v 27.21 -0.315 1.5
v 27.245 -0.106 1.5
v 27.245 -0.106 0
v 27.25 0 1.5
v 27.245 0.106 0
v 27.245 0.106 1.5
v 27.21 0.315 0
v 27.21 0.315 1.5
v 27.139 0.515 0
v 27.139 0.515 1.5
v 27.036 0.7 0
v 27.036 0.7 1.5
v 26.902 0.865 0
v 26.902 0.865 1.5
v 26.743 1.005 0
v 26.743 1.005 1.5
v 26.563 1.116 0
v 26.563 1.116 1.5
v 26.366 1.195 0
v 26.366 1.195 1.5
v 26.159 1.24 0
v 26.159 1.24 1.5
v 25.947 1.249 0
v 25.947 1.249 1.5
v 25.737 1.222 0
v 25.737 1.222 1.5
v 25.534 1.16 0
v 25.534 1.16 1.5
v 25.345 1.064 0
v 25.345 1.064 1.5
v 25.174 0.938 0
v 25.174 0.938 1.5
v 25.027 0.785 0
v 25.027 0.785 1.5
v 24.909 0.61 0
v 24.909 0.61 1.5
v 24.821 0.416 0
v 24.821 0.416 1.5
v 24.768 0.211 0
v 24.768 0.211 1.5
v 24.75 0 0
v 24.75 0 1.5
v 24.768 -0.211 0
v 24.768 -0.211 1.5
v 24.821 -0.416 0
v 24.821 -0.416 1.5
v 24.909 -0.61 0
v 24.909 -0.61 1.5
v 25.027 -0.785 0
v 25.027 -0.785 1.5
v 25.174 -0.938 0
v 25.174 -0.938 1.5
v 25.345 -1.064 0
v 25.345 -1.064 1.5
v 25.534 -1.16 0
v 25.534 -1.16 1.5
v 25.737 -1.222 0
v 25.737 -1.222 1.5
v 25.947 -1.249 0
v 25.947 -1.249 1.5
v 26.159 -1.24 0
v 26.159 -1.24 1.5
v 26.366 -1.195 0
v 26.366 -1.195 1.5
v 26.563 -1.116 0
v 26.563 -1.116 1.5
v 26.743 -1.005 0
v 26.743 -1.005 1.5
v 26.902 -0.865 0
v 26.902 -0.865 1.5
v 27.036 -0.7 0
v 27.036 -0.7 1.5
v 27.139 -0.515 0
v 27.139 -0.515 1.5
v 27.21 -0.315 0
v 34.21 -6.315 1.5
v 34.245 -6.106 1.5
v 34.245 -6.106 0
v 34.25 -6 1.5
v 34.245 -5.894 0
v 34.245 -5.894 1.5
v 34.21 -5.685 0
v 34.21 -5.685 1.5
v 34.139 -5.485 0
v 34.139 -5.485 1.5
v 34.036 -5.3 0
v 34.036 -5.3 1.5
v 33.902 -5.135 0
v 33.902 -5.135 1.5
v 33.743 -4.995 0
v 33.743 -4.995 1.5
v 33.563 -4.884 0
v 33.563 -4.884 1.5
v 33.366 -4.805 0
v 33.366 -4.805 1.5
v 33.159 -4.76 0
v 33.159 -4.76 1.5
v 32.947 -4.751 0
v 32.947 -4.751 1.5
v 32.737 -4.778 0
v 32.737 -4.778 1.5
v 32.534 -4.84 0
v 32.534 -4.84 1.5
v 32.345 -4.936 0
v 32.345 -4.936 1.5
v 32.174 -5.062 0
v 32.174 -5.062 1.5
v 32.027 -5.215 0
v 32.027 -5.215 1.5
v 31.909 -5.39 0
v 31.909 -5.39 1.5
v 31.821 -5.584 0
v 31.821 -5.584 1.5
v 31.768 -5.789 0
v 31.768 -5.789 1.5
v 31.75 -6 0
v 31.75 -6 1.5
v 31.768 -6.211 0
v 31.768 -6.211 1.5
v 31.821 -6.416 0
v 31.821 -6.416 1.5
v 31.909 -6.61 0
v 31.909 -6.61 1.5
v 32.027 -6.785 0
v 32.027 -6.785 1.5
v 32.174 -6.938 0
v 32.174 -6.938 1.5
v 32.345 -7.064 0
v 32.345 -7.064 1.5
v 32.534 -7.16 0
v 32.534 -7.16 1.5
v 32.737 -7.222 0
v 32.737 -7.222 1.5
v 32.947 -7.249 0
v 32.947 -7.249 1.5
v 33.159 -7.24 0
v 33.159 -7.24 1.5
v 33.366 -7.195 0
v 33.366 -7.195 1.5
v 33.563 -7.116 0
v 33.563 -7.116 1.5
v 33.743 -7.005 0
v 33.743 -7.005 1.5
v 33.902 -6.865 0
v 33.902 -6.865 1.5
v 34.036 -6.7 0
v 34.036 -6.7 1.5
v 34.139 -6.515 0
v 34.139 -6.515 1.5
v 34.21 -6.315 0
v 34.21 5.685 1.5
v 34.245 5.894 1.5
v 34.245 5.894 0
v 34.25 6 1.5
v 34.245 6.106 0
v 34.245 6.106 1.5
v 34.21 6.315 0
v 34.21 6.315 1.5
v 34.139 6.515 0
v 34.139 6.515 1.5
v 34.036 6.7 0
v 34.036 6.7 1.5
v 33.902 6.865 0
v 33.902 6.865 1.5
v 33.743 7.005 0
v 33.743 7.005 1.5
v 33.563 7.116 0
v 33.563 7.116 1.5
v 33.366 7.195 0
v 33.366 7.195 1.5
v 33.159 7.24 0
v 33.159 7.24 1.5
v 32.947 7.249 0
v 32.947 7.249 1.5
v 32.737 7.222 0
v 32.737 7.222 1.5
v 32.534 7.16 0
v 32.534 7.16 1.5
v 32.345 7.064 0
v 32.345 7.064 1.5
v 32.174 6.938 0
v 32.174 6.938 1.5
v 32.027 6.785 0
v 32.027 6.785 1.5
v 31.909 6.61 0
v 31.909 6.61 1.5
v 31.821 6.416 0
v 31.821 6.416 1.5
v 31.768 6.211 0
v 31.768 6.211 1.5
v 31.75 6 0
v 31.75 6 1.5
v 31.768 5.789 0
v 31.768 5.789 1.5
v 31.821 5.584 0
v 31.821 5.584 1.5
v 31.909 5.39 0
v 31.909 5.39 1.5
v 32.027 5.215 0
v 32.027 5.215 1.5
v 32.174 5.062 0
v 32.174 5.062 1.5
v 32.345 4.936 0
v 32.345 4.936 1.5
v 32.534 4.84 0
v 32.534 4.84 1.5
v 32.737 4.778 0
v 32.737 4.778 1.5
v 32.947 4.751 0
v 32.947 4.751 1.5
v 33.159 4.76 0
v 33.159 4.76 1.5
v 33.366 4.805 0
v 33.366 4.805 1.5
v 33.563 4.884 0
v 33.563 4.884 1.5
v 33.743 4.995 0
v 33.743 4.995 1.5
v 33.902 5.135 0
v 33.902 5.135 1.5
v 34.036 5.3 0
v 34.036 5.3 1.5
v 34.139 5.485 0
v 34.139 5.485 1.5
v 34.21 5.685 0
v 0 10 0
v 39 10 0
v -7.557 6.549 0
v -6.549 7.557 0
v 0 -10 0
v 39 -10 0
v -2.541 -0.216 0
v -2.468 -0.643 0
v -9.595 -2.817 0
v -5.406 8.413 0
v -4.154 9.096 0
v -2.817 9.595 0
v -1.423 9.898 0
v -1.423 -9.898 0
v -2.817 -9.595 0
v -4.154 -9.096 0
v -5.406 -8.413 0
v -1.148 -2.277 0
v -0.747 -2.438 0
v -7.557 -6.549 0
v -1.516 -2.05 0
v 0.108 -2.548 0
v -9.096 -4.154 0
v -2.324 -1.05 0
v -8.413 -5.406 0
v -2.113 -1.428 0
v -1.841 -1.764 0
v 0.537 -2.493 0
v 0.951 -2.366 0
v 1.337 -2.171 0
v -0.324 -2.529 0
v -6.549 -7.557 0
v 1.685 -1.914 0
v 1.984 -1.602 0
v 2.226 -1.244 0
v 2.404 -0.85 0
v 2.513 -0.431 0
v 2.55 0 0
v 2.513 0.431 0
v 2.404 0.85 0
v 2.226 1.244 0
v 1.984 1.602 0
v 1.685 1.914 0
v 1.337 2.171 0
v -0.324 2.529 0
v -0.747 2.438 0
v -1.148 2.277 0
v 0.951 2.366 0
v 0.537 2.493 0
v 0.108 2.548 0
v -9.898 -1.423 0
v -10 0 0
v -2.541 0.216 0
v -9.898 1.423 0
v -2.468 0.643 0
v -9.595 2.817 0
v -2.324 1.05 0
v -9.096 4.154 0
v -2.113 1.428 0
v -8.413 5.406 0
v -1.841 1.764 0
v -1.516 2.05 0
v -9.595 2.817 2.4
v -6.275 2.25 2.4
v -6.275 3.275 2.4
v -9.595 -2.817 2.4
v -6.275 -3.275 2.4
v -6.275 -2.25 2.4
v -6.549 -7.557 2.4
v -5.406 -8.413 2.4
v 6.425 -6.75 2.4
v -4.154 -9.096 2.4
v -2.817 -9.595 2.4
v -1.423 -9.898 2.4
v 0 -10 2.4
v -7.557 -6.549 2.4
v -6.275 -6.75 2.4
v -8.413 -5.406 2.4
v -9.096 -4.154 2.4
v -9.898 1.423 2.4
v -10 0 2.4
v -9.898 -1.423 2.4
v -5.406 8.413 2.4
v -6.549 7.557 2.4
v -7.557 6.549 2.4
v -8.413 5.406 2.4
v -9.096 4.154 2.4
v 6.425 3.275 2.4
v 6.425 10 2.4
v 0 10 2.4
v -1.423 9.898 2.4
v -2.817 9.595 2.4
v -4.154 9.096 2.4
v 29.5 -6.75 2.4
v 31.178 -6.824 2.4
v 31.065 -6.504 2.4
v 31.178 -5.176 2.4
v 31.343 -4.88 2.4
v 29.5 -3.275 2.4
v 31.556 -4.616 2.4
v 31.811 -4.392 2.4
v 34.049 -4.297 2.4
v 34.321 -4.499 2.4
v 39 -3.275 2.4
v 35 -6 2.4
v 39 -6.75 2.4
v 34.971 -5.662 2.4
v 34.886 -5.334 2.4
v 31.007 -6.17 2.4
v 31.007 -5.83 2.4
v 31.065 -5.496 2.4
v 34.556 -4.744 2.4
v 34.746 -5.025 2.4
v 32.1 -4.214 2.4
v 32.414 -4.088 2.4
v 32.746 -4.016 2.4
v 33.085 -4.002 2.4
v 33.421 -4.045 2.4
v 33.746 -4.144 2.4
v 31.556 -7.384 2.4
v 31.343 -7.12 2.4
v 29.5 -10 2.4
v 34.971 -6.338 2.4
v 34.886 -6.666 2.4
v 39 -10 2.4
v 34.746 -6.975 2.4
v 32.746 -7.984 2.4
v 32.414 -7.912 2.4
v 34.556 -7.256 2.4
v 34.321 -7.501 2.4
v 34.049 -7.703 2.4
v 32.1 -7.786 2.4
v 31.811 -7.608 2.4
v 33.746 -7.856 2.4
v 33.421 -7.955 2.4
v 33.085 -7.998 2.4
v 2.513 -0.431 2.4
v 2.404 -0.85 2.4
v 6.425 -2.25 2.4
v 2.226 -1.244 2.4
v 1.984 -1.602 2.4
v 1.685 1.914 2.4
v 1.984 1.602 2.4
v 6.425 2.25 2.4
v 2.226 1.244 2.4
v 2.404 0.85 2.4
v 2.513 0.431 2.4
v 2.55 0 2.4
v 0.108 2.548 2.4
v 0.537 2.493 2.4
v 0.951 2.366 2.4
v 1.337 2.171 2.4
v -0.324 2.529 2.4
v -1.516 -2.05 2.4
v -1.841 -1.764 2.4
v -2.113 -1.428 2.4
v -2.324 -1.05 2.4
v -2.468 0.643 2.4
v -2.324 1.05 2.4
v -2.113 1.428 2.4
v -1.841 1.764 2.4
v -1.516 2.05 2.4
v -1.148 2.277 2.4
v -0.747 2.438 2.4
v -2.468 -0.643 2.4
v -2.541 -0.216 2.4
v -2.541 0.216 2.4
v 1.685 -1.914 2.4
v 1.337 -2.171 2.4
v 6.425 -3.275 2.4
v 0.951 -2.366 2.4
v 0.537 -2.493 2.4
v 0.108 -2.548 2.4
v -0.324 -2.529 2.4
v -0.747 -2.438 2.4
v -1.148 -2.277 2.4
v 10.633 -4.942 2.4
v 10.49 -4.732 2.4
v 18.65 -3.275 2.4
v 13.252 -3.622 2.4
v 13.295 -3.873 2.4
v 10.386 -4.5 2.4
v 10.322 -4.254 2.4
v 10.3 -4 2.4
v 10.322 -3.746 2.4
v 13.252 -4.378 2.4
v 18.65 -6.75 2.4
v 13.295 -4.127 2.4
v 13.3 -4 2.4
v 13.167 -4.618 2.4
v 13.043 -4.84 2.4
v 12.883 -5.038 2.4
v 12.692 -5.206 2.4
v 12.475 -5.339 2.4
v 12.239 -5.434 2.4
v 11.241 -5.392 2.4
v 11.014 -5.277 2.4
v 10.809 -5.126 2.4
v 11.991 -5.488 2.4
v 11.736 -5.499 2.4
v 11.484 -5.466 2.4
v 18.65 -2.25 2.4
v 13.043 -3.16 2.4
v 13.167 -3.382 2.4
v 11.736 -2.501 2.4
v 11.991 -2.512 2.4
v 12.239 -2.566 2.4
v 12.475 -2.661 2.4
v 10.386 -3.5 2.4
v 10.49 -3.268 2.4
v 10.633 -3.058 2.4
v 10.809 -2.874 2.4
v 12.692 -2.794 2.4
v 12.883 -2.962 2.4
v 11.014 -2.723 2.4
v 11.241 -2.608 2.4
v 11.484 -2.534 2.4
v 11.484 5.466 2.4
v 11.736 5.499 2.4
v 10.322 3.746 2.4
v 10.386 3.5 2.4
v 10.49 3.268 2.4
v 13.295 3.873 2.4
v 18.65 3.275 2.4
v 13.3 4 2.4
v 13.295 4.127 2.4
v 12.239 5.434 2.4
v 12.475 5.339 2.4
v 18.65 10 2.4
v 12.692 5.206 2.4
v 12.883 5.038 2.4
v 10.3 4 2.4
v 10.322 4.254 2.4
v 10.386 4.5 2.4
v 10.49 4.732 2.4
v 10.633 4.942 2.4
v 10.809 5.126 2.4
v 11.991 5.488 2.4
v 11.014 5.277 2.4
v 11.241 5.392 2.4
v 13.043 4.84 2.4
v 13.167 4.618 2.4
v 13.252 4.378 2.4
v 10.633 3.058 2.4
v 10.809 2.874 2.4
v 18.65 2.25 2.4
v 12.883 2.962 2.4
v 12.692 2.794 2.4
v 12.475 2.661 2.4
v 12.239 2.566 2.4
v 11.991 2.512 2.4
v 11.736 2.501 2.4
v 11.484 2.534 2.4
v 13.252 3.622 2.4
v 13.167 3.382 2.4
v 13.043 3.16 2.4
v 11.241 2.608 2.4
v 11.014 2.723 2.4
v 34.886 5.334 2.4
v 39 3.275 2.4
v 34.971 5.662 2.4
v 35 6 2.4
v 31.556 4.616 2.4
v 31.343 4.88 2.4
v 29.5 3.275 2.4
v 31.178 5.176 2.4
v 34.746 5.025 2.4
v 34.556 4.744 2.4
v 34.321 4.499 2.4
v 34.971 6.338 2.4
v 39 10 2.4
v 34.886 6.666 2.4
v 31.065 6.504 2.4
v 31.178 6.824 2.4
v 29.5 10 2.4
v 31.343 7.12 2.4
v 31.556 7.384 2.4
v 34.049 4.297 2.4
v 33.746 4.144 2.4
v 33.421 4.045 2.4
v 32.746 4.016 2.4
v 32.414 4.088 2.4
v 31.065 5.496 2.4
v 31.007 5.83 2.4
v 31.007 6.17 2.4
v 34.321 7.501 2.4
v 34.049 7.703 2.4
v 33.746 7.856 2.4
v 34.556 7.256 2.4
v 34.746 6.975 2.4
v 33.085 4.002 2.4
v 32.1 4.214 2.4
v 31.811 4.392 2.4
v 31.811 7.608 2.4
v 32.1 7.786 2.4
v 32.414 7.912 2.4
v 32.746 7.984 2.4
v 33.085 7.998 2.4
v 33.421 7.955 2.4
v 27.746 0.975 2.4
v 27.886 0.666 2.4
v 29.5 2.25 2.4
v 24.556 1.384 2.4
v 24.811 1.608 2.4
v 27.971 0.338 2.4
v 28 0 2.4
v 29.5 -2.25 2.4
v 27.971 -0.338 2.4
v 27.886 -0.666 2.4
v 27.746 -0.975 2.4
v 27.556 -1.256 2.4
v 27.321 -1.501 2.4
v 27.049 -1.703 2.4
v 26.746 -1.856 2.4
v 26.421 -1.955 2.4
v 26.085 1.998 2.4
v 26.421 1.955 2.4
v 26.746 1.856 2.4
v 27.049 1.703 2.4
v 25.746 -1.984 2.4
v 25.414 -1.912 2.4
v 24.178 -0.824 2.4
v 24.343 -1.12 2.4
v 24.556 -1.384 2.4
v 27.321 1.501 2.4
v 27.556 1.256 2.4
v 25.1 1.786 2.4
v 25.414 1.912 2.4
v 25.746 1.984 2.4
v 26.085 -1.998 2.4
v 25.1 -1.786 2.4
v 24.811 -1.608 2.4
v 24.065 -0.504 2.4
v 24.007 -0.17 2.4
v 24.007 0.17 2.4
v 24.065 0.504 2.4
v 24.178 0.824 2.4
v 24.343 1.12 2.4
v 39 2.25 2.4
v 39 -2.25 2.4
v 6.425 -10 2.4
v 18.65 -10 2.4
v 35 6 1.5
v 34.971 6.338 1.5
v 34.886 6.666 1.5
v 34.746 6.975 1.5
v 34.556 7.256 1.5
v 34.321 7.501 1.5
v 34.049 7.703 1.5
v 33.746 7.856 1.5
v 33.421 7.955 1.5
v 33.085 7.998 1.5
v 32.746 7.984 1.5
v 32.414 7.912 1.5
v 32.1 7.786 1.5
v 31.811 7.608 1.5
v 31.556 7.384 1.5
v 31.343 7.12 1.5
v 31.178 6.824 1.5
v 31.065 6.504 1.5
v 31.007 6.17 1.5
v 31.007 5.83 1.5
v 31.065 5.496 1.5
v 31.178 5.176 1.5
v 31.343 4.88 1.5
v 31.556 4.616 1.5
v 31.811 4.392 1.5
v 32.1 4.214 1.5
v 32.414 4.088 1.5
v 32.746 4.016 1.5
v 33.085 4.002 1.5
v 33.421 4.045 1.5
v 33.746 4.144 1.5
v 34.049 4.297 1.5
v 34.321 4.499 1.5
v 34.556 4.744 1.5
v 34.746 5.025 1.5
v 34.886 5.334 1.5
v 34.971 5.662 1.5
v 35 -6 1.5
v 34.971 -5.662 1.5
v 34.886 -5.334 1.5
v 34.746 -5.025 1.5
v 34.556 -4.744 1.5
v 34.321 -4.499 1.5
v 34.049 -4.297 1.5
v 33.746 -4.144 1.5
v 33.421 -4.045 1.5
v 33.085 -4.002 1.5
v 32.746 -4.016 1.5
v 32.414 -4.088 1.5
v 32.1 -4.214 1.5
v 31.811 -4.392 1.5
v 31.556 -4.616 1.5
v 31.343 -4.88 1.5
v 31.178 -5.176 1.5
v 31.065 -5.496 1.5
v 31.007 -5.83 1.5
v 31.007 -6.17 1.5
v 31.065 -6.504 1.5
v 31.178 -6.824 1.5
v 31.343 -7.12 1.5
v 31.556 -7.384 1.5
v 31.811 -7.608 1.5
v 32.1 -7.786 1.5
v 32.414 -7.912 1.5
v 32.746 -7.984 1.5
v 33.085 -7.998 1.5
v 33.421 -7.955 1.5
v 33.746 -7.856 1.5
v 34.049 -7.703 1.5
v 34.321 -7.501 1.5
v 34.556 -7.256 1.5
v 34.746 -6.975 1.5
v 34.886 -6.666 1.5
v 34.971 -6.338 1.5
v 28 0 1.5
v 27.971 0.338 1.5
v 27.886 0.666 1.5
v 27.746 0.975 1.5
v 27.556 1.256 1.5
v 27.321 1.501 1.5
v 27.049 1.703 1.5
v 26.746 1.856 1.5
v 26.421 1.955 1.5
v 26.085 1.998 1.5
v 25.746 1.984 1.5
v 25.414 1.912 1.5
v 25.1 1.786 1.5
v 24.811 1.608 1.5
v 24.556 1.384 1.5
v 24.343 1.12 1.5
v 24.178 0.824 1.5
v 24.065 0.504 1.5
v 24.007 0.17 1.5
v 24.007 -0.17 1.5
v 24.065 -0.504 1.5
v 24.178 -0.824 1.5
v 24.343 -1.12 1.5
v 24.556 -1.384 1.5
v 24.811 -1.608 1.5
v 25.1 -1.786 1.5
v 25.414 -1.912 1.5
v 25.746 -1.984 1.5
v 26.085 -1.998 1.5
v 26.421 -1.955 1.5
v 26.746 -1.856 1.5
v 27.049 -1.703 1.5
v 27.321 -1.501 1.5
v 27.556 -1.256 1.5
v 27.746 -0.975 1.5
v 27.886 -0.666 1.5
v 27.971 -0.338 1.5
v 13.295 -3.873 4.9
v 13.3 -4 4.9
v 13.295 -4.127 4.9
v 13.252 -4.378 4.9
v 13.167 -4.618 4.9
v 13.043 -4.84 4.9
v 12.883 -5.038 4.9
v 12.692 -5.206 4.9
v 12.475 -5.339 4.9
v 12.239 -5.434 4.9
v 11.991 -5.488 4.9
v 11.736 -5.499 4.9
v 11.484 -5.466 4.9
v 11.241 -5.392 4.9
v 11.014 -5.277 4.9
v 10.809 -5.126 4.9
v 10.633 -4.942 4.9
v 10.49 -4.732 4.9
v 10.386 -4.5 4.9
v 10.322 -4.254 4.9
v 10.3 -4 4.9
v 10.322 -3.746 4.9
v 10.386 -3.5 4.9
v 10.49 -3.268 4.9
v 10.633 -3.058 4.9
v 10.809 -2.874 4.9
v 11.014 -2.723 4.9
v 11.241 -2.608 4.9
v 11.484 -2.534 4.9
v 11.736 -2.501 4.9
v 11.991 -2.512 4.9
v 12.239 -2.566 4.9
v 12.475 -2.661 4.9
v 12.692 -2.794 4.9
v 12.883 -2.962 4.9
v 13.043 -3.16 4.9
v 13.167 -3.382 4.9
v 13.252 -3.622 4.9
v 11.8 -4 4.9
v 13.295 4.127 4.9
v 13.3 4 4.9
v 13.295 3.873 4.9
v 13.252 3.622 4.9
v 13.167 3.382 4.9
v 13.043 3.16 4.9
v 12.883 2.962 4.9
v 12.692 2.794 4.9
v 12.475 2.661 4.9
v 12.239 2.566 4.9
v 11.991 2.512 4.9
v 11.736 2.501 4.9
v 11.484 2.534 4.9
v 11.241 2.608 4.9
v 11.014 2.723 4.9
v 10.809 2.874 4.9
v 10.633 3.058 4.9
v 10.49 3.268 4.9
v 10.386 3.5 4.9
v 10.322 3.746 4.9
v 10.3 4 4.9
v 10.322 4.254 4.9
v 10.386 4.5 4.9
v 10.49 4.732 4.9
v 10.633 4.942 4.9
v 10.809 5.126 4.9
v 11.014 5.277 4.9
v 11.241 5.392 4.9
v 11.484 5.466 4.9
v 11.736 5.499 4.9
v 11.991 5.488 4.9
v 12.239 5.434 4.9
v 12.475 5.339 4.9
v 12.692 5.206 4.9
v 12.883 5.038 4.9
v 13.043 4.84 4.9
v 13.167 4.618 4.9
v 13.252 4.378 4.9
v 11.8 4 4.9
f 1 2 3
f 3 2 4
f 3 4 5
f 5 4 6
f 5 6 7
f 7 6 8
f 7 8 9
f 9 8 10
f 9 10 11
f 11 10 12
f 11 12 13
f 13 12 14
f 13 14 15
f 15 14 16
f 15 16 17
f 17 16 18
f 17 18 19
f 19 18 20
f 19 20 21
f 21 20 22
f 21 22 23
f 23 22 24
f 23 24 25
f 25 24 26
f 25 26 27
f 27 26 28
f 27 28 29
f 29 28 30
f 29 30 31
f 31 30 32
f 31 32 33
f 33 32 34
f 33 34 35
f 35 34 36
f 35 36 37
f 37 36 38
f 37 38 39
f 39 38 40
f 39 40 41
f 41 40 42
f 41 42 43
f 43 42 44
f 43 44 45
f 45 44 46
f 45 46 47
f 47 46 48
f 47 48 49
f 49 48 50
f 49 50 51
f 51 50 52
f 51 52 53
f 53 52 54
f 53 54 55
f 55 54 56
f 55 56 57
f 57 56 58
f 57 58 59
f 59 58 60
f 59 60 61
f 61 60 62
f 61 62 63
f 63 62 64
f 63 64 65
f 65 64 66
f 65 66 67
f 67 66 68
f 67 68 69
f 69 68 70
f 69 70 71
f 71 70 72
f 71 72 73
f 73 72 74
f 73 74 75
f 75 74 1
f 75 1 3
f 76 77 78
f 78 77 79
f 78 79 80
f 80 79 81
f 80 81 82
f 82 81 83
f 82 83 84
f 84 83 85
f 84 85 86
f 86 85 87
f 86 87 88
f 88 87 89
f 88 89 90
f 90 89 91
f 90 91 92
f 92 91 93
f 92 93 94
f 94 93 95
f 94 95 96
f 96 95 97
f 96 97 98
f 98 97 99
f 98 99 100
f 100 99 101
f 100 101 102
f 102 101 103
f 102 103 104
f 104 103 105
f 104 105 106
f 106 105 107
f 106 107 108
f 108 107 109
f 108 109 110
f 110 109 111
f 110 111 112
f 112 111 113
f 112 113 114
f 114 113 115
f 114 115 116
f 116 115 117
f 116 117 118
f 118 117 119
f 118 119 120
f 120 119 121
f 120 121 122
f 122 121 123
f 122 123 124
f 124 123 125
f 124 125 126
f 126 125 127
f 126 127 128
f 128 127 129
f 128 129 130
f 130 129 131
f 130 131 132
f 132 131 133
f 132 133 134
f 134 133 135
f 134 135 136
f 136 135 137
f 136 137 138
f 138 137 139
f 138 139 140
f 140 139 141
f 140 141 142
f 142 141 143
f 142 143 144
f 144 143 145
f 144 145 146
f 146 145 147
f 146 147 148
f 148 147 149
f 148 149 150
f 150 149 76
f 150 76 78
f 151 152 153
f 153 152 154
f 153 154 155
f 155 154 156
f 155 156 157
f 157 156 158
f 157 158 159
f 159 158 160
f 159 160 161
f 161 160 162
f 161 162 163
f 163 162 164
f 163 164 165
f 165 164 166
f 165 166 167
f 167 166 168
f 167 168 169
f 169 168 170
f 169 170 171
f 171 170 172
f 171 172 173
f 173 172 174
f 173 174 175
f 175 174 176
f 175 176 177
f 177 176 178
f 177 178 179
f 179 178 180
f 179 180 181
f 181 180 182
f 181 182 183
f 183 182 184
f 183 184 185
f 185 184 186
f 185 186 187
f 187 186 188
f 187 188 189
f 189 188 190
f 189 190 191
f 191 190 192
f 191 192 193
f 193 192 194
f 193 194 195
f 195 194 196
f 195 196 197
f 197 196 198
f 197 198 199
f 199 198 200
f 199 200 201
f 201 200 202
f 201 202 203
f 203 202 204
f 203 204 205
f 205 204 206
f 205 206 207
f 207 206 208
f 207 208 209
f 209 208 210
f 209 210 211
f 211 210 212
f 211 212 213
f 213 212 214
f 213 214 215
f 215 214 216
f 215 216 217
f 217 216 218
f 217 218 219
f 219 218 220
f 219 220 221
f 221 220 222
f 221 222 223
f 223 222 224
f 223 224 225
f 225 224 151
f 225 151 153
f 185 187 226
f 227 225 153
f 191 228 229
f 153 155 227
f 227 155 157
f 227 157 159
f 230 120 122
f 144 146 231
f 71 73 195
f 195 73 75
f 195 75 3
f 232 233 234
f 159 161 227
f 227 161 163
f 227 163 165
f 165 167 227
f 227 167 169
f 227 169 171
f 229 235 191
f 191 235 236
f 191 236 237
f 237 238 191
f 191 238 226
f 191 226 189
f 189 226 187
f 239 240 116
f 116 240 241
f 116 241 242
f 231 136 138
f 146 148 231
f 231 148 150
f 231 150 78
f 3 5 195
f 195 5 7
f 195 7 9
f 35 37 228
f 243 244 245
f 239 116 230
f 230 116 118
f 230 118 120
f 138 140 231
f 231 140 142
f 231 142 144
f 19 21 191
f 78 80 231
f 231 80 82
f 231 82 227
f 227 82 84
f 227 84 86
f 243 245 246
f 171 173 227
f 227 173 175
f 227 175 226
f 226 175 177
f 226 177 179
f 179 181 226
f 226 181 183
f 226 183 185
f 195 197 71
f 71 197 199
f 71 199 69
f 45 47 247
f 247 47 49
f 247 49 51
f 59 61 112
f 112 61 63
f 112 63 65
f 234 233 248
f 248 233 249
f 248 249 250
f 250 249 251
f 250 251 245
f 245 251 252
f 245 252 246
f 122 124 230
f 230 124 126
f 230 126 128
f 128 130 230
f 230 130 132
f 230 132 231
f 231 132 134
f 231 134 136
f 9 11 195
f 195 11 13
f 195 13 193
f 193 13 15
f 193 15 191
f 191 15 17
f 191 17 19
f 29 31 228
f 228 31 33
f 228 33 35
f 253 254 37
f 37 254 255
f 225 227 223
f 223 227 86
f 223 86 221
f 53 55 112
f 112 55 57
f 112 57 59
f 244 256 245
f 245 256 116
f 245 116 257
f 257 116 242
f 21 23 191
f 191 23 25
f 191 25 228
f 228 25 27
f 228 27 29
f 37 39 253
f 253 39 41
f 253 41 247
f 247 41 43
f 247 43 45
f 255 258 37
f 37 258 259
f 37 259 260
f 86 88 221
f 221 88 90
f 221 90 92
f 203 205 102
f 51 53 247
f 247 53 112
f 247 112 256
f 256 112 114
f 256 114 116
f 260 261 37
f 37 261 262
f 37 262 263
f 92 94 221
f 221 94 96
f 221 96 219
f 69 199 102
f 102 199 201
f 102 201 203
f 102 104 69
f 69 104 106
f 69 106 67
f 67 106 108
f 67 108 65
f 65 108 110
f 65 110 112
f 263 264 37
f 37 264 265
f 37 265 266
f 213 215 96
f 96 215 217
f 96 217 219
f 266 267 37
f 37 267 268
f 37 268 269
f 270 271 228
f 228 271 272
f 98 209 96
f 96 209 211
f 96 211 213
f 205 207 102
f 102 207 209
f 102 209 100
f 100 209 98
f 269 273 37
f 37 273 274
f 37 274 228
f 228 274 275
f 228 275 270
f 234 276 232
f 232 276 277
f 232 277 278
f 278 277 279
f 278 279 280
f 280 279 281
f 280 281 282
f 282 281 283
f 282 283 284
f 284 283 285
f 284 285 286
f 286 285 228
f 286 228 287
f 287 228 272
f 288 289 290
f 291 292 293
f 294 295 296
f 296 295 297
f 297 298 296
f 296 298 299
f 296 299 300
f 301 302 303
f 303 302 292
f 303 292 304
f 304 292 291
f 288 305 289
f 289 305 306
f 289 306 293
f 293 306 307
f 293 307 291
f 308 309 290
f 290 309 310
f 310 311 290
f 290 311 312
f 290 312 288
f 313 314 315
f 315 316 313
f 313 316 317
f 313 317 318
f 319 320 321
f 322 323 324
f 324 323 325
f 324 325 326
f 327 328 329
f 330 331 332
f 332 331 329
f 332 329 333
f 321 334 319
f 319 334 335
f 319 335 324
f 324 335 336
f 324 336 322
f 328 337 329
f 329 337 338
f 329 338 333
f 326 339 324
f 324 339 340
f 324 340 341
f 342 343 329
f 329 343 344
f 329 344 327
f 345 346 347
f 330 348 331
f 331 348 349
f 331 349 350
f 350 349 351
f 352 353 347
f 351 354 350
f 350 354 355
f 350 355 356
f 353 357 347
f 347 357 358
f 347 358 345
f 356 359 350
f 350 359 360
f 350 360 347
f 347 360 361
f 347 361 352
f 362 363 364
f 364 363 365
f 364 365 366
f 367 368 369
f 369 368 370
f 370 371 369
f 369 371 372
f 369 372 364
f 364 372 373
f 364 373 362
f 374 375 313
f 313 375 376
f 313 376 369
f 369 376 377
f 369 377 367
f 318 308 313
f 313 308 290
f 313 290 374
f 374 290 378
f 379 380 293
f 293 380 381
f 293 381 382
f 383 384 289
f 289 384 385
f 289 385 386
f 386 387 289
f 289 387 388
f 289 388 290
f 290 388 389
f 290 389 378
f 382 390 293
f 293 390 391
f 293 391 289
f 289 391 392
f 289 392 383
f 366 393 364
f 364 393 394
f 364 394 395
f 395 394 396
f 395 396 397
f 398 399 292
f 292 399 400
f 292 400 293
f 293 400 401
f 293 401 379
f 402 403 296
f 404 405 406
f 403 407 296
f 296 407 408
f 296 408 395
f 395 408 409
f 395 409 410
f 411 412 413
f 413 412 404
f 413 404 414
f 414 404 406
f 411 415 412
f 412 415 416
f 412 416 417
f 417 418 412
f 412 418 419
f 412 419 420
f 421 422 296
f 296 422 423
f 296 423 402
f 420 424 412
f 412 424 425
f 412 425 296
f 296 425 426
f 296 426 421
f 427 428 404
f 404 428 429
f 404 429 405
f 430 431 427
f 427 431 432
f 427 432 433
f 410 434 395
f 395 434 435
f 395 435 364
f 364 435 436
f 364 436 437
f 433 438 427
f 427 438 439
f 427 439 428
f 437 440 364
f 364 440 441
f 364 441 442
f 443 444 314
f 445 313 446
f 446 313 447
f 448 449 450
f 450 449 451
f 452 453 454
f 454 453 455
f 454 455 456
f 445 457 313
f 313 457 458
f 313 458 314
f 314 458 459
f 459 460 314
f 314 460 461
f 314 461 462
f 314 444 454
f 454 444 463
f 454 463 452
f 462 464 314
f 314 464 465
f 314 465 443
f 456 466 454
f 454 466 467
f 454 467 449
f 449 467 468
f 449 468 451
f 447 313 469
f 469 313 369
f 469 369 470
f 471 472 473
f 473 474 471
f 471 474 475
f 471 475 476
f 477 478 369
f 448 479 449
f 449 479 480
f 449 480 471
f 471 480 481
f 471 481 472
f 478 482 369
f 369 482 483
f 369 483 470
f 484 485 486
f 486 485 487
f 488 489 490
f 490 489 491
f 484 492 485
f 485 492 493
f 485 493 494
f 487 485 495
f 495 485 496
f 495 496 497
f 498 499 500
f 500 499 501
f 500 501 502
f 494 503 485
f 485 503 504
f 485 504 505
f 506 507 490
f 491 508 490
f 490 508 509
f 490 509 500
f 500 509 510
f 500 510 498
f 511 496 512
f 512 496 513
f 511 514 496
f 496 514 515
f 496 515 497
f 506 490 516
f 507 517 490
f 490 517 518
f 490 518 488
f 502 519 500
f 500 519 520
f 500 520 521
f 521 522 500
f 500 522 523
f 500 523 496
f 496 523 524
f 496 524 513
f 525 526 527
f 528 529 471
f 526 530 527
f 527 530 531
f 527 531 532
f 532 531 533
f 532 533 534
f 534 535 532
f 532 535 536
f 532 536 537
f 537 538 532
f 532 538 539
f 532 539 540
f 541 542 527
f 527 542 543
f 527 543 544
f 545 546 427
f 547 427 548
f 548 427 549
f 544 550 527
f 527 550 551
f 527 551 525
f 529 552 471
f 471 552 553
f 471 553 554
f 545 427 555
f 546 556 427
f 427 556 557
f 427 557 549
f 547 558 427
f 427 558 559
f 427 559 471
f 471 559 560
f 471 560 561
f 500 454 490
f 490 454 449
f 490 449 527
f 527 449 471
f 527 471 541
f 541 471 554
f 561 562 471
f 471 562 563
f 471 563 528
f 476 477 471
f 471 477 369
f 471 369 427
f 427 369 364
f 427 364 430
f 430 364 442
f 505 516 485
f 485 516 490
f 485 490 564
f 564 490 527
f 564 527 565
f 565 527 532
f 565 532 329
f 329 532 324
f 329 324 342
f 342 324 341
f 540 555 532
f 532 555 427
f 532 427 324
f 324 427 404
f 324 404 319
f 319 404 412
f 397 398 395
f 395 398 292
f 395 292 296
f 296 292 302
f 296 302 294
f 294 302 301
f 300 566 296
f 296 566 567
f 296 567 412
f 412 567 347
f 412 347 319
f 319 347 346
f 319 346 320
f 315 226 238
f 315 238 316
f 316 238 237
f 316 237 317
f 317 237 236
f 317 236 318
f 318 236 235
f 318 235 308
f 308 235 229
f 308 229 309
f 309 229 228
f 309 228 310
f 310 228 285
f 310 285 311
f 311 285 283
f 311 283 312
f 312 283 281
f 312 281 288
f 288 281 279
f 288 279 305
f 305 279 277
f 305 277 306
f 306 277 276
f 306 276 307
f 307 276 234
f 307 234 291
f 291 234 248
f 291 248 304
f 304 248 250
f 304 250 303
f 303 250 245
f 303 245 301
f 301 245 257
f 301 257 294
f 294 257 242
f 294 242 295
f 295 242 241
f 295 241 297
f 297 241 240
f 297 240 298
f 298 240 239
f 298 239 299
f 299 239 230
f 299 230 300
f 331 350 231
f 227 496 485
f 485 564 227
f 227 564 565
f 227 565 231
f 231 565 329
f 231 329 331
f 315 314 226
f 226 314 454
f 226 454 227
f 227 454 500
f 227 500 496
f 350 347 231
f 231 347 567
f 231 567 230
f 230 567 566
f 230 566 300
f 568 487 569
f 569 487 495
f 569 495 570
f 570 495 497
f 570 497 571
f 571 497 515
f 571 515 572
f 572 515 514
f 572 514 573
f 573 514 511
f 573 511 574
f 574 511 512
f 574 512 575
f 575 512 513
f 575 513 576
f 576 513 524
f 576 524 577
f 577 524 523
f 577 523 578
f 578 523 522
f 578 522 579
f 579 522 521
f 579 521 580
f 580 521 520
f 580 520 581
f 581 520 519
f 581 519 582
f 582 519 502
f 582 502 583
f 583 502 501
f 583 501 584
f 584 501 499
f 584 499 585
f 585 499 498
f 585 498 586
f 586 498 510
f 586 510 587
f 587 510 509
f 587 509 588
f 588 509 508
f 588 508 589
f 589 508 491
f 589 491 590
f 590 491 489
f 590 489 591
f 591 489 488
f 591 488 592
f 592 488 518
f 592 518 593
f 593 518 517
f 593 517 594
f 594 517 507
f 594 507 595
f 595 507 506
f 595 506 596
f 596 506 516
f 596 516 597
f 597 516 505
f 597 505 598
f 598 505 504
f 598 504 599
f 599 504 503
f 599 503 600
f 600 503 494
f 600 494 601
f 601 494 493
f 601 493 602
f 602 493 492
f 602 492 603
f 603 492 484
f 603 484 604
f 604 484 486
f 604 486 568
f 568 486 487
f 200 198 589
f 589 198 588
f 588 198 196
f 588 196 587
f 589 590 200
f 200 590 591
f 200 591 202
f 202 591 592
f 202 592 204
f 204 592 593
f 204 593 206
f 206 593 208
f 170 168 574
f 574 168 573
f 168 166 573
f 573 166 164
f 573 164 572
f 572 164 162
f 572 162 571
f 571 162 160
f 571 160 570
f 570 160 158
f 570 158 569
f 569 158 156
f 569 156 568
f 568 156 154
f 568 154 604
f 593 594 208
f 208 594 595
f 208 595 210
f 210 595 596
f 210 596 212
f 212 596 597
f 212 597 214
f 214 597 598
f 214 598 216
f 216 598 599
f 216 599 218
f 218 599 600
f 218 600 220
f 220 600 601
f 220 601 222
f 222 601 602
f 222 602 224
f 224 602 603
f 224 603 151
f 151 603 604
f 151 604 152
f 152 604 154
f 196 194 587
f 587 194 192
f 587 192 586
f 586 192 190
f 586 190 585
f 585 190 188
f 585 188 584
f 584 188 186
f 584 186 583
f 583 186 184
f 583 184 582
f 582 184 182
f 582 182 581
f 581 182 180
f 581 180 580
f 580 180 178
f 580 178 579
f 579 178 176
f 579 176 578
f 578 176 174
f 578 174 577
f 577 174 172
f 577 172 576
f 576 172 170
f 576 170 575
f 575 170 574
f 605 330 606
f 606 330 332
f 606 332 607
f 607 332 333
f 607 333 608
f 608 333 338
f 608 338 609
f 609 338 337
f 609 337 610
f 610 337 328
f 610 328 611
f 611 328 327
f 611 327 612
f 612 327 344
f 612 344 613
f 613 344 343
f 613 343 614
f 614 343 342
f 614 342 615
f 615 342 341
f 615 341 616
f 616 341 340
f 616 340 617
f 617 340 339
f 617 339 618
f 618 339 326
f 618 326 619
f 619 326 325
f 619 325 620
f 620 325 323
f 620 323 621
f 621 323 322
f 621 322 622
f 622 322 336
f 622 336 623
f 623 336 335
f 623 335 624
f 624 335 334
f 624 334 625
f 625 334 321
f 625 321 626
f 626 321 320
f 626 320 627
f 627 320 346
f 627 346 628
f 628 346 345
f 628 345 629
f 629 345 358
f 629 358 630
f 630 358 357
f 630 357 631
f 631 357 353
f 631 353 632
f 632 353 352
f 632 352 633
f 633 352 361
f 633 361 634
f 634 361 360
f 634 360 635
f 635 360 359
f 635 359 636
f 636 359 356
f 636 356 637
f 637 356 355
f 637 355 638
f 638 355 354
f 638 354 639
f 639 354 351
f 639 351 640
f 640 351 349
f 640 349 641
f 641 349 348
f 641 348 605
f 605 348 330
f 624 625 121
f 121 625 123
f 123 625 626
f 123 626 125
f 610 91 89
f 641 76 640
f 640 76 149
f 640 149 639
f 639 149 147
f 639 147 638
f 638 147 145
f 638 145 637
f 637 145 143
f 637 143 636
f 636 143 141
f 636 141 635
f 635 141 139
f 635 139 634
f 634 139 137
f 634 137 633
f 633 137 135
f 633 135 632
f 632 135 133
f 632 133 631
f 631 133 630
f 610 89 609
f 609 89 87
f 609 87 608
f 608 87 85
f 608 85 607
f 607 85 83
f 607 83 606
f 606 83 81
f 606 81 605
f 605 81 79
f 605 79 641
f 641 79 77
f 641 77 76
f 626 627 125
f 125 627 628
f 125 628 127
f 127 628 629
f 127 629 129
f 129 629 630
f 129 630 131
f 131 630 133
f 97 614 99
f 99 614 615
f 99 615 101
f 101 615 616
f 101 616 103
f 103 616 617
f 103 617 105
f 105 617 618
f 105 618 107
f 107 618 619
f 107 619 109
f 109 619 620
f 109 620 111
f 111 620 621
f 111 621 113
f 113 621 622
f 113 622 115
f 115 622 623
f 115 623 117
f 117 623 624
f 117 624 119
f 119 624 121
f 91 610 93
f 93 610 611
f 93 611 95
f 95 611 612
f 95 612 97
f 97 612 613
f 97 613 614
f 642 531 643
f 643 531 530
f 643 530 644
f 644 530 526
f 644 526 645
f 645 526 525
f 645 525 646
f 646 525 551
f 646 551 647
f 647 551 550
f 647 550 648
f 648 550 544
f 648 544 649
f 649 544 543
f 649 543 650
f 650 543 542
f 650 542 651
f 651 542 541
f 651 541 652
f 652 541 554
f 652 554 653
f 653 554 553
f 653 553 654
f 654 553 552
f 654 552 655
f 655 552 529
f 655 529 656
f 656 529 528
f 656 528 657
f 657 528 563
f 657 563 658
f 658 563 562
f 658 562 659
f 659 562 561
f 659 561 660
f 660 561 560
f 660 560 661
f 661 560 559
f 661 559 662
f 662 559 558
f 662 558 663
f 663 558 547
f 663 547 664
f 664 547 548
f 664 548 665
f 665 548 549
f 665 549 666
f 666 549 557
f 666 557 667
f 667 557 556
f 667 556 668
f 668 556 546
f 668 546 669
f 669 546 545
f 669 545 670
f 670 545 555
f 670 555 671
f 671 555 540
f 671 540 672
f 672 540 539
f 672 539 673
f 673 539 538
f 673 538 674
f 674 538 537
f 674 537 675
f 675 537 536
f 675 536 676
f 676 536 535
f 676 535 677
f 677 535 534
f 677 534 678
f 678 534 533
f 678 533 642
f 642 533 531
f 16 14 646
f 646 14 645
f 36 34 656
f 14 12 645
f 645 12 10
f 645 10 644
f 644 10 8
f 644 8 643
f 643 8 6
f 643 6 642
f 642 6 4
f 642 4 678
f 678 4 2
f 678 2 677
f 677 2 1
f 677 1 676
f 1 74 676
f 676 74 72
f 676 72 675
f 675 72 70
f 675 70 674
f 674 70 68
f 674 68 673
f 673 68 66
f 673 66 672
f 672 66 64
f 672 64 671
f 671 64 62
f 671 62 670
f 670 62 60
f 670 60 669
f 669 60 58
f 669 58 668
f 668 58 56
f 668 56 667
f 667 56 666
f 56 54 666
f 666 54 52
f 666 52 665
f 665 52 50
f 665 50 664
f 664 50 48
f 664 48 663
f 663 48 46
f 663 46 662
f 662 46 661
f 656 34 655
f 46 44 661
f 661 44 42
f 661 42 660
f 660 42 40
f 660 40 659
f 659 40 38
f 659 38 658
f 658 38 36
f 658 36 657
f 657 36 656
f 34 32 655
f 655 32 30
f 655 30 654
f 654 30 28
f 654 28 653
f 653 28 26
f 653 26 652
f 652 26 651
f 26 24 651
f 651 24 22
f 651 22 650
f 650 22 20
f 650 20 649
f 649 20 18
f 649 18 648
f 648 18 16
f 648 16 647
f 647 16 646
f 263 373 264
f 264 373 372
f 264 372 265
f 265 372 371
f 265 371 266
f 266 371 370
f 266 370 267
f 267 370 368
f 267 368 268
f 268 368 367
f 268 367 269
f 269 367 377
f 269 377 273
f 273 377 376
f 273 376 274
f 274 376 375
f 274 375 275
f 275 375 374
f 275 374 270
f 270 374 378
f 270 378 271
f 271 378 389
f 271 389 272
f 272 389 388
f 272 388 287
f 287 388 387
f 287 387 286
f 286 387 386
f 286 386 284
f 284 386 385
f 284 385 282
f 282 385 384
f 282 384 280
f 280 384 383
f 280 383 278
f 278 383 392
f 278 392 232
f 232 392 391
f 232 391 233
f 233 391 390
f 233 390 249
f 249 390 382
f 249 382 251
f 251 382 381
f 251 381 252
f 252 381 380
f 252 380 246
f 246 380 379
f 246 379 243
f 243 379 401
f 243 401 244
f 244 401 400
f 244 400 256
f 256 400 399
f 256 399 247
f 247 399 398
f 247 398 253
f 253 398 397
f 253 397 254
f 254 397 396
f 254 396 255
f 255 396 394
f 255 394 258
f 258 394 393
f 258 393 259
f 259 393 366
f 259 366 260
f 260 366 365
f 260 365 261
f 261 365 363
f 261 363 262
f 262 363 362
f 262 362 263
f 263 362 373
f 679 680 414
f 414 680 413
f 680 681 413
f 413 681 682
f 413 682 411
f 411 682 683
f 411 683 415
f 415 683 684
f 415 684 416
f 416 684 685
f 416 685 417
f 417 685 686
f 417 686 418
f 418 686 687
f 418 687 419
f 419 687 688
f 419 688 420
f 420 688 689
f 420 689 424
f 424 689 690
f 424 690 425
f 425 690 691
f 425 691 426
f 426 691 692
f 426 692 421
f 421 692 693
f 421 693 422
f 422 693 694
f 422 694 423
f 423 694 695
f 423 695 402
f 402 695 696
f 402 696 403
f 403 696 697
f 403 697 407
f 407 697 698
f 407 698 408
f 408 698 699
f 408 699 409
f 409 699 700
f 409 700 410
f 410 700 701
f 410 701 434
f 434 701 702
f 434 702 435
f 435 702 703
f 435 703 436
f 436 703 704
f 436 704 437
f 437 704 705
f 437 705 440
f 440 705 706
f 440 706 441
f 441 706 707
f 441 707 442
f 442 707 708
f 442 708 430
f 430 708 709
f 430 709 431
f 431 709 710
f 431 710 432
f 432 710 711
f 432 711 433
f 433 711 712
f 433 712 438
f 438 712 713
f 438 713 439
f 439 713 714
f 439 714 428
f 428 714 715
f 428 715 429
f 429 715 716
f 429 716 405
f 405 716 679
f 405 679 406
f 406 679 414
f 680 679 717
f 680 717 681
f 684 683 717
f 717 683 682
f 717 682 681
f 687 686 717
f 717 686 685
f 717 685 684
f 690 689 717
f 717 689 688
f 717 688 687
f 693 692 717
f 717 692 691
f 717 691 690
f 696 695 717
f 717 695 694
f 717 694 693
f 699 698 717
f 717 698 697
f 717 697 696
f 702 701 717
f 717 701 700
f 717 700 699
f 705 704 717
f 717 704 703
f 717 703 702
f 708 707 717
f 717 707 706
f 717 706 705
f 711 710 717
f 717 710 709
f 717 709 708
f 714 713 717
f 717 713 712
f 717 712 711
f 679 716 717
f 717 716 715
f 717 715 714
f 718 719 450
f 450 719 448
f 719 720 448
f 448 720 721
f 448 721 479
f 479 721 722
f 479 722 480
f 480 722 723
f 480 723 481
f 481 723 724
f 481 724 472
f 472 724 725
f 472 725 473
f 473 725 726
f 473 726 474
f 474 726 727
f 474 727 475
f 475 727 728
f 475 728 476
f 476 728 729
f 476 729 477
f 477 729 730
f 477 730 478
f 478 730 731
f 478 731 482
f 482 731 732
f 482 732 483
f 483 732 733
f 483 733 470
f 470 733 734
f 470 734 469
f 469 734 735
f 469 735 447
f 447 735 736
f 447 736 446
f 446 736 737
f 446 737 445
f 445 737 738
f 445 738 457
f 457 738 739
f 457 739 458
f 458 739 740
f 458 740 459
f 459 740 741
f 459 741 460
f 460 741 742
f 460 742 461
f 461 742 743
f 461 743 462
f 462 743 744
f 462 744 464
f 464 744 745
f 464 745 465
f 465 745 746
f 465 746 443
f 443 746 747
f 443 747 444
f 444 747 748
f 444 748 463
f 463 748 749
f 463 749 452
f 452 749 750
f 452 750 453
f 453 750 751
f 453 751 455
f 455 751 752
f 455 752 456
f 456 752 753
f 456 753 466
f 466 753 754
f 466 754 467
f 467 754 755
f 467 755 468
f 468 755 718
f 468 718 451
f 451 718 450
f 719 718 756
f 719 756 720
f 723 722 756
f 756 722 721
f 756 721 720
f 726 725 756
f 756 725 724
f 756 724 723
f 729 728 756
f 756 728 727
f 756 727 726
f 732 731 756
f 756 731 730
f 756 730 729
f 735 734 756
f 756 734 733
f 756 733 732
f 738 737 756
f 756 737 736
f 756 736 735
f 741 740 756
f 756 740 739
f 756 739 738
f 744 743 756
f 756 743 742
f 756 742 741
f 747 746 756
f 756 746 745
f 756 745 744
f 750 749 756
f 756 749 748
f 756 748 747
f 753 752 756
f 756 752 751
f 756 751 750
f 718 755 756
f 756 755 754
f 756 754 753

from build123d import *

# Parameters (mm, degrees)
EXTRUDE_1_DEPTH     = 2.4
SKETCH_2_R          = 1.25
CUT_EXTRUDE_1_DEPTH = 41.333112947
CUT_EXTRUDE_START   = -1.5
SKETCH_2_3_R        = 2
SKETCH_2_3_R_2      = 1.25
CUT_EXTRUDE_2_DEPTH = 0.9
SKETCH_3_R          = 2.55
CUT_EXTRUDE_3_DEPTH = 41.333112947
SKETCH_4_R          = 1.5
EXTRUDE_2_DEPTH     = 2.5


with BuildPart() as part:
    # 草图1 → 凸台-拉伸1 (new body)
    with BuildSketch(Plane.XY):
        with BuildLine():
            Line((0, -10), (39, -10))
            Line((39, -10), (39, 10))
            Line((39, 10), (0, 10))
            ThreePointArc((0, 10), (-10, 0), (0, -10))
        make_face()
    extrude(amount=EXTRUDE_1_DEPTH)

    # 草图2 → 切除-拉伸1 (cut, through all)
    with BuildSketch(Plane(origin=(0, 0, 0), x_dir=(-1, 0, 0), z_dir=(0, 0, -1))):
        with Locations((-33, 6)):
            Circle(SKETCH_2_R)
        with Locations((-33, -6)):
            Circle(SKETCH_2_R)
        with Locations((-26, 0)):
            Circle(SKETCH_2_R)
    extrude(amount=-CUT_EXTRUDE_1_DEPTH, mode=Mode.SUBTRACT)

    # 草图2<3> → 切除-拉伸2 (cut)
    # profile 1 of 3: a face of its own
    with BuildSketch(Plane(origin=(0, 0, 0), x_dir=(-1, 0, 0), z_dir=(0, 0, -1)).offset(CUT_EXTRUDE_START)):
        with Locations(Location((-33, 6, 0), (0, 0, 180))):
            Circle(SKETCH_2_3_R)
        with Locations((-33, 6)):
            Circle(SKETCH_2_3_R_2, mode=Mode.SUBTRACT)
    # profile 2 of 3: a face of its own
    with BuildSketch(Plane(origin=(0, 0, 0), x_dir=(-1, 0, 0), z_dir=(0, 0, -1)).offset(CUT_EXTRUDE_START)):
        with Locations(Location((-33, -6, 0), (0, 0, 180))):
            Circle(SKETCH_2_3_R)
        with Locations((-33, -6)):
            Circle(SKETCH_2_3_R_2, mode=Mode.SUBTRACT)
    # profile 3 of 3: a face of its own
    with BuildSketch(Plane(origin=(0, 0, 0), x_dir=(-1, 0, 0), z_dir=(0, 0, -1)).offset(CUT_EXTRUDE_START)):
        with Locations(Location((-26, 0, 0), (0, 0, 180))):
            Circle(SKETCH_2_3_R)
        with Locations((-26, 0)):
            Circle(SKETCH_2_3_R_2, mode=Mode.SUBTRACT)
    extrude(amount=-CUT_EXTRUDE_2_DEPTH, mode=Mode.SUBTRACT)

    # 草图3 → 切除-拉伸3 (cut, through all)
    with BuildSketch(Plane.XY.offset(2.4)):
        Circle(SKETCH_3_R)
    extrude(amount=-CUT_EXTRUDE_3_DEPTH, mode=Mode.SUBTRACT)

    # 草图4 → 凸台-拉伸2 (add)
    with BuildSketch(Plane.XY.offset(2.4)):
        with Locations((11.8, -4)):
            Circle(SKETCH_4_R)
        with Locations((11.8, 4)):
            Circle(SKETCH_4_R)
    extrude(amount=EXTRUDE_2_DEPTH)


solid = part.part
